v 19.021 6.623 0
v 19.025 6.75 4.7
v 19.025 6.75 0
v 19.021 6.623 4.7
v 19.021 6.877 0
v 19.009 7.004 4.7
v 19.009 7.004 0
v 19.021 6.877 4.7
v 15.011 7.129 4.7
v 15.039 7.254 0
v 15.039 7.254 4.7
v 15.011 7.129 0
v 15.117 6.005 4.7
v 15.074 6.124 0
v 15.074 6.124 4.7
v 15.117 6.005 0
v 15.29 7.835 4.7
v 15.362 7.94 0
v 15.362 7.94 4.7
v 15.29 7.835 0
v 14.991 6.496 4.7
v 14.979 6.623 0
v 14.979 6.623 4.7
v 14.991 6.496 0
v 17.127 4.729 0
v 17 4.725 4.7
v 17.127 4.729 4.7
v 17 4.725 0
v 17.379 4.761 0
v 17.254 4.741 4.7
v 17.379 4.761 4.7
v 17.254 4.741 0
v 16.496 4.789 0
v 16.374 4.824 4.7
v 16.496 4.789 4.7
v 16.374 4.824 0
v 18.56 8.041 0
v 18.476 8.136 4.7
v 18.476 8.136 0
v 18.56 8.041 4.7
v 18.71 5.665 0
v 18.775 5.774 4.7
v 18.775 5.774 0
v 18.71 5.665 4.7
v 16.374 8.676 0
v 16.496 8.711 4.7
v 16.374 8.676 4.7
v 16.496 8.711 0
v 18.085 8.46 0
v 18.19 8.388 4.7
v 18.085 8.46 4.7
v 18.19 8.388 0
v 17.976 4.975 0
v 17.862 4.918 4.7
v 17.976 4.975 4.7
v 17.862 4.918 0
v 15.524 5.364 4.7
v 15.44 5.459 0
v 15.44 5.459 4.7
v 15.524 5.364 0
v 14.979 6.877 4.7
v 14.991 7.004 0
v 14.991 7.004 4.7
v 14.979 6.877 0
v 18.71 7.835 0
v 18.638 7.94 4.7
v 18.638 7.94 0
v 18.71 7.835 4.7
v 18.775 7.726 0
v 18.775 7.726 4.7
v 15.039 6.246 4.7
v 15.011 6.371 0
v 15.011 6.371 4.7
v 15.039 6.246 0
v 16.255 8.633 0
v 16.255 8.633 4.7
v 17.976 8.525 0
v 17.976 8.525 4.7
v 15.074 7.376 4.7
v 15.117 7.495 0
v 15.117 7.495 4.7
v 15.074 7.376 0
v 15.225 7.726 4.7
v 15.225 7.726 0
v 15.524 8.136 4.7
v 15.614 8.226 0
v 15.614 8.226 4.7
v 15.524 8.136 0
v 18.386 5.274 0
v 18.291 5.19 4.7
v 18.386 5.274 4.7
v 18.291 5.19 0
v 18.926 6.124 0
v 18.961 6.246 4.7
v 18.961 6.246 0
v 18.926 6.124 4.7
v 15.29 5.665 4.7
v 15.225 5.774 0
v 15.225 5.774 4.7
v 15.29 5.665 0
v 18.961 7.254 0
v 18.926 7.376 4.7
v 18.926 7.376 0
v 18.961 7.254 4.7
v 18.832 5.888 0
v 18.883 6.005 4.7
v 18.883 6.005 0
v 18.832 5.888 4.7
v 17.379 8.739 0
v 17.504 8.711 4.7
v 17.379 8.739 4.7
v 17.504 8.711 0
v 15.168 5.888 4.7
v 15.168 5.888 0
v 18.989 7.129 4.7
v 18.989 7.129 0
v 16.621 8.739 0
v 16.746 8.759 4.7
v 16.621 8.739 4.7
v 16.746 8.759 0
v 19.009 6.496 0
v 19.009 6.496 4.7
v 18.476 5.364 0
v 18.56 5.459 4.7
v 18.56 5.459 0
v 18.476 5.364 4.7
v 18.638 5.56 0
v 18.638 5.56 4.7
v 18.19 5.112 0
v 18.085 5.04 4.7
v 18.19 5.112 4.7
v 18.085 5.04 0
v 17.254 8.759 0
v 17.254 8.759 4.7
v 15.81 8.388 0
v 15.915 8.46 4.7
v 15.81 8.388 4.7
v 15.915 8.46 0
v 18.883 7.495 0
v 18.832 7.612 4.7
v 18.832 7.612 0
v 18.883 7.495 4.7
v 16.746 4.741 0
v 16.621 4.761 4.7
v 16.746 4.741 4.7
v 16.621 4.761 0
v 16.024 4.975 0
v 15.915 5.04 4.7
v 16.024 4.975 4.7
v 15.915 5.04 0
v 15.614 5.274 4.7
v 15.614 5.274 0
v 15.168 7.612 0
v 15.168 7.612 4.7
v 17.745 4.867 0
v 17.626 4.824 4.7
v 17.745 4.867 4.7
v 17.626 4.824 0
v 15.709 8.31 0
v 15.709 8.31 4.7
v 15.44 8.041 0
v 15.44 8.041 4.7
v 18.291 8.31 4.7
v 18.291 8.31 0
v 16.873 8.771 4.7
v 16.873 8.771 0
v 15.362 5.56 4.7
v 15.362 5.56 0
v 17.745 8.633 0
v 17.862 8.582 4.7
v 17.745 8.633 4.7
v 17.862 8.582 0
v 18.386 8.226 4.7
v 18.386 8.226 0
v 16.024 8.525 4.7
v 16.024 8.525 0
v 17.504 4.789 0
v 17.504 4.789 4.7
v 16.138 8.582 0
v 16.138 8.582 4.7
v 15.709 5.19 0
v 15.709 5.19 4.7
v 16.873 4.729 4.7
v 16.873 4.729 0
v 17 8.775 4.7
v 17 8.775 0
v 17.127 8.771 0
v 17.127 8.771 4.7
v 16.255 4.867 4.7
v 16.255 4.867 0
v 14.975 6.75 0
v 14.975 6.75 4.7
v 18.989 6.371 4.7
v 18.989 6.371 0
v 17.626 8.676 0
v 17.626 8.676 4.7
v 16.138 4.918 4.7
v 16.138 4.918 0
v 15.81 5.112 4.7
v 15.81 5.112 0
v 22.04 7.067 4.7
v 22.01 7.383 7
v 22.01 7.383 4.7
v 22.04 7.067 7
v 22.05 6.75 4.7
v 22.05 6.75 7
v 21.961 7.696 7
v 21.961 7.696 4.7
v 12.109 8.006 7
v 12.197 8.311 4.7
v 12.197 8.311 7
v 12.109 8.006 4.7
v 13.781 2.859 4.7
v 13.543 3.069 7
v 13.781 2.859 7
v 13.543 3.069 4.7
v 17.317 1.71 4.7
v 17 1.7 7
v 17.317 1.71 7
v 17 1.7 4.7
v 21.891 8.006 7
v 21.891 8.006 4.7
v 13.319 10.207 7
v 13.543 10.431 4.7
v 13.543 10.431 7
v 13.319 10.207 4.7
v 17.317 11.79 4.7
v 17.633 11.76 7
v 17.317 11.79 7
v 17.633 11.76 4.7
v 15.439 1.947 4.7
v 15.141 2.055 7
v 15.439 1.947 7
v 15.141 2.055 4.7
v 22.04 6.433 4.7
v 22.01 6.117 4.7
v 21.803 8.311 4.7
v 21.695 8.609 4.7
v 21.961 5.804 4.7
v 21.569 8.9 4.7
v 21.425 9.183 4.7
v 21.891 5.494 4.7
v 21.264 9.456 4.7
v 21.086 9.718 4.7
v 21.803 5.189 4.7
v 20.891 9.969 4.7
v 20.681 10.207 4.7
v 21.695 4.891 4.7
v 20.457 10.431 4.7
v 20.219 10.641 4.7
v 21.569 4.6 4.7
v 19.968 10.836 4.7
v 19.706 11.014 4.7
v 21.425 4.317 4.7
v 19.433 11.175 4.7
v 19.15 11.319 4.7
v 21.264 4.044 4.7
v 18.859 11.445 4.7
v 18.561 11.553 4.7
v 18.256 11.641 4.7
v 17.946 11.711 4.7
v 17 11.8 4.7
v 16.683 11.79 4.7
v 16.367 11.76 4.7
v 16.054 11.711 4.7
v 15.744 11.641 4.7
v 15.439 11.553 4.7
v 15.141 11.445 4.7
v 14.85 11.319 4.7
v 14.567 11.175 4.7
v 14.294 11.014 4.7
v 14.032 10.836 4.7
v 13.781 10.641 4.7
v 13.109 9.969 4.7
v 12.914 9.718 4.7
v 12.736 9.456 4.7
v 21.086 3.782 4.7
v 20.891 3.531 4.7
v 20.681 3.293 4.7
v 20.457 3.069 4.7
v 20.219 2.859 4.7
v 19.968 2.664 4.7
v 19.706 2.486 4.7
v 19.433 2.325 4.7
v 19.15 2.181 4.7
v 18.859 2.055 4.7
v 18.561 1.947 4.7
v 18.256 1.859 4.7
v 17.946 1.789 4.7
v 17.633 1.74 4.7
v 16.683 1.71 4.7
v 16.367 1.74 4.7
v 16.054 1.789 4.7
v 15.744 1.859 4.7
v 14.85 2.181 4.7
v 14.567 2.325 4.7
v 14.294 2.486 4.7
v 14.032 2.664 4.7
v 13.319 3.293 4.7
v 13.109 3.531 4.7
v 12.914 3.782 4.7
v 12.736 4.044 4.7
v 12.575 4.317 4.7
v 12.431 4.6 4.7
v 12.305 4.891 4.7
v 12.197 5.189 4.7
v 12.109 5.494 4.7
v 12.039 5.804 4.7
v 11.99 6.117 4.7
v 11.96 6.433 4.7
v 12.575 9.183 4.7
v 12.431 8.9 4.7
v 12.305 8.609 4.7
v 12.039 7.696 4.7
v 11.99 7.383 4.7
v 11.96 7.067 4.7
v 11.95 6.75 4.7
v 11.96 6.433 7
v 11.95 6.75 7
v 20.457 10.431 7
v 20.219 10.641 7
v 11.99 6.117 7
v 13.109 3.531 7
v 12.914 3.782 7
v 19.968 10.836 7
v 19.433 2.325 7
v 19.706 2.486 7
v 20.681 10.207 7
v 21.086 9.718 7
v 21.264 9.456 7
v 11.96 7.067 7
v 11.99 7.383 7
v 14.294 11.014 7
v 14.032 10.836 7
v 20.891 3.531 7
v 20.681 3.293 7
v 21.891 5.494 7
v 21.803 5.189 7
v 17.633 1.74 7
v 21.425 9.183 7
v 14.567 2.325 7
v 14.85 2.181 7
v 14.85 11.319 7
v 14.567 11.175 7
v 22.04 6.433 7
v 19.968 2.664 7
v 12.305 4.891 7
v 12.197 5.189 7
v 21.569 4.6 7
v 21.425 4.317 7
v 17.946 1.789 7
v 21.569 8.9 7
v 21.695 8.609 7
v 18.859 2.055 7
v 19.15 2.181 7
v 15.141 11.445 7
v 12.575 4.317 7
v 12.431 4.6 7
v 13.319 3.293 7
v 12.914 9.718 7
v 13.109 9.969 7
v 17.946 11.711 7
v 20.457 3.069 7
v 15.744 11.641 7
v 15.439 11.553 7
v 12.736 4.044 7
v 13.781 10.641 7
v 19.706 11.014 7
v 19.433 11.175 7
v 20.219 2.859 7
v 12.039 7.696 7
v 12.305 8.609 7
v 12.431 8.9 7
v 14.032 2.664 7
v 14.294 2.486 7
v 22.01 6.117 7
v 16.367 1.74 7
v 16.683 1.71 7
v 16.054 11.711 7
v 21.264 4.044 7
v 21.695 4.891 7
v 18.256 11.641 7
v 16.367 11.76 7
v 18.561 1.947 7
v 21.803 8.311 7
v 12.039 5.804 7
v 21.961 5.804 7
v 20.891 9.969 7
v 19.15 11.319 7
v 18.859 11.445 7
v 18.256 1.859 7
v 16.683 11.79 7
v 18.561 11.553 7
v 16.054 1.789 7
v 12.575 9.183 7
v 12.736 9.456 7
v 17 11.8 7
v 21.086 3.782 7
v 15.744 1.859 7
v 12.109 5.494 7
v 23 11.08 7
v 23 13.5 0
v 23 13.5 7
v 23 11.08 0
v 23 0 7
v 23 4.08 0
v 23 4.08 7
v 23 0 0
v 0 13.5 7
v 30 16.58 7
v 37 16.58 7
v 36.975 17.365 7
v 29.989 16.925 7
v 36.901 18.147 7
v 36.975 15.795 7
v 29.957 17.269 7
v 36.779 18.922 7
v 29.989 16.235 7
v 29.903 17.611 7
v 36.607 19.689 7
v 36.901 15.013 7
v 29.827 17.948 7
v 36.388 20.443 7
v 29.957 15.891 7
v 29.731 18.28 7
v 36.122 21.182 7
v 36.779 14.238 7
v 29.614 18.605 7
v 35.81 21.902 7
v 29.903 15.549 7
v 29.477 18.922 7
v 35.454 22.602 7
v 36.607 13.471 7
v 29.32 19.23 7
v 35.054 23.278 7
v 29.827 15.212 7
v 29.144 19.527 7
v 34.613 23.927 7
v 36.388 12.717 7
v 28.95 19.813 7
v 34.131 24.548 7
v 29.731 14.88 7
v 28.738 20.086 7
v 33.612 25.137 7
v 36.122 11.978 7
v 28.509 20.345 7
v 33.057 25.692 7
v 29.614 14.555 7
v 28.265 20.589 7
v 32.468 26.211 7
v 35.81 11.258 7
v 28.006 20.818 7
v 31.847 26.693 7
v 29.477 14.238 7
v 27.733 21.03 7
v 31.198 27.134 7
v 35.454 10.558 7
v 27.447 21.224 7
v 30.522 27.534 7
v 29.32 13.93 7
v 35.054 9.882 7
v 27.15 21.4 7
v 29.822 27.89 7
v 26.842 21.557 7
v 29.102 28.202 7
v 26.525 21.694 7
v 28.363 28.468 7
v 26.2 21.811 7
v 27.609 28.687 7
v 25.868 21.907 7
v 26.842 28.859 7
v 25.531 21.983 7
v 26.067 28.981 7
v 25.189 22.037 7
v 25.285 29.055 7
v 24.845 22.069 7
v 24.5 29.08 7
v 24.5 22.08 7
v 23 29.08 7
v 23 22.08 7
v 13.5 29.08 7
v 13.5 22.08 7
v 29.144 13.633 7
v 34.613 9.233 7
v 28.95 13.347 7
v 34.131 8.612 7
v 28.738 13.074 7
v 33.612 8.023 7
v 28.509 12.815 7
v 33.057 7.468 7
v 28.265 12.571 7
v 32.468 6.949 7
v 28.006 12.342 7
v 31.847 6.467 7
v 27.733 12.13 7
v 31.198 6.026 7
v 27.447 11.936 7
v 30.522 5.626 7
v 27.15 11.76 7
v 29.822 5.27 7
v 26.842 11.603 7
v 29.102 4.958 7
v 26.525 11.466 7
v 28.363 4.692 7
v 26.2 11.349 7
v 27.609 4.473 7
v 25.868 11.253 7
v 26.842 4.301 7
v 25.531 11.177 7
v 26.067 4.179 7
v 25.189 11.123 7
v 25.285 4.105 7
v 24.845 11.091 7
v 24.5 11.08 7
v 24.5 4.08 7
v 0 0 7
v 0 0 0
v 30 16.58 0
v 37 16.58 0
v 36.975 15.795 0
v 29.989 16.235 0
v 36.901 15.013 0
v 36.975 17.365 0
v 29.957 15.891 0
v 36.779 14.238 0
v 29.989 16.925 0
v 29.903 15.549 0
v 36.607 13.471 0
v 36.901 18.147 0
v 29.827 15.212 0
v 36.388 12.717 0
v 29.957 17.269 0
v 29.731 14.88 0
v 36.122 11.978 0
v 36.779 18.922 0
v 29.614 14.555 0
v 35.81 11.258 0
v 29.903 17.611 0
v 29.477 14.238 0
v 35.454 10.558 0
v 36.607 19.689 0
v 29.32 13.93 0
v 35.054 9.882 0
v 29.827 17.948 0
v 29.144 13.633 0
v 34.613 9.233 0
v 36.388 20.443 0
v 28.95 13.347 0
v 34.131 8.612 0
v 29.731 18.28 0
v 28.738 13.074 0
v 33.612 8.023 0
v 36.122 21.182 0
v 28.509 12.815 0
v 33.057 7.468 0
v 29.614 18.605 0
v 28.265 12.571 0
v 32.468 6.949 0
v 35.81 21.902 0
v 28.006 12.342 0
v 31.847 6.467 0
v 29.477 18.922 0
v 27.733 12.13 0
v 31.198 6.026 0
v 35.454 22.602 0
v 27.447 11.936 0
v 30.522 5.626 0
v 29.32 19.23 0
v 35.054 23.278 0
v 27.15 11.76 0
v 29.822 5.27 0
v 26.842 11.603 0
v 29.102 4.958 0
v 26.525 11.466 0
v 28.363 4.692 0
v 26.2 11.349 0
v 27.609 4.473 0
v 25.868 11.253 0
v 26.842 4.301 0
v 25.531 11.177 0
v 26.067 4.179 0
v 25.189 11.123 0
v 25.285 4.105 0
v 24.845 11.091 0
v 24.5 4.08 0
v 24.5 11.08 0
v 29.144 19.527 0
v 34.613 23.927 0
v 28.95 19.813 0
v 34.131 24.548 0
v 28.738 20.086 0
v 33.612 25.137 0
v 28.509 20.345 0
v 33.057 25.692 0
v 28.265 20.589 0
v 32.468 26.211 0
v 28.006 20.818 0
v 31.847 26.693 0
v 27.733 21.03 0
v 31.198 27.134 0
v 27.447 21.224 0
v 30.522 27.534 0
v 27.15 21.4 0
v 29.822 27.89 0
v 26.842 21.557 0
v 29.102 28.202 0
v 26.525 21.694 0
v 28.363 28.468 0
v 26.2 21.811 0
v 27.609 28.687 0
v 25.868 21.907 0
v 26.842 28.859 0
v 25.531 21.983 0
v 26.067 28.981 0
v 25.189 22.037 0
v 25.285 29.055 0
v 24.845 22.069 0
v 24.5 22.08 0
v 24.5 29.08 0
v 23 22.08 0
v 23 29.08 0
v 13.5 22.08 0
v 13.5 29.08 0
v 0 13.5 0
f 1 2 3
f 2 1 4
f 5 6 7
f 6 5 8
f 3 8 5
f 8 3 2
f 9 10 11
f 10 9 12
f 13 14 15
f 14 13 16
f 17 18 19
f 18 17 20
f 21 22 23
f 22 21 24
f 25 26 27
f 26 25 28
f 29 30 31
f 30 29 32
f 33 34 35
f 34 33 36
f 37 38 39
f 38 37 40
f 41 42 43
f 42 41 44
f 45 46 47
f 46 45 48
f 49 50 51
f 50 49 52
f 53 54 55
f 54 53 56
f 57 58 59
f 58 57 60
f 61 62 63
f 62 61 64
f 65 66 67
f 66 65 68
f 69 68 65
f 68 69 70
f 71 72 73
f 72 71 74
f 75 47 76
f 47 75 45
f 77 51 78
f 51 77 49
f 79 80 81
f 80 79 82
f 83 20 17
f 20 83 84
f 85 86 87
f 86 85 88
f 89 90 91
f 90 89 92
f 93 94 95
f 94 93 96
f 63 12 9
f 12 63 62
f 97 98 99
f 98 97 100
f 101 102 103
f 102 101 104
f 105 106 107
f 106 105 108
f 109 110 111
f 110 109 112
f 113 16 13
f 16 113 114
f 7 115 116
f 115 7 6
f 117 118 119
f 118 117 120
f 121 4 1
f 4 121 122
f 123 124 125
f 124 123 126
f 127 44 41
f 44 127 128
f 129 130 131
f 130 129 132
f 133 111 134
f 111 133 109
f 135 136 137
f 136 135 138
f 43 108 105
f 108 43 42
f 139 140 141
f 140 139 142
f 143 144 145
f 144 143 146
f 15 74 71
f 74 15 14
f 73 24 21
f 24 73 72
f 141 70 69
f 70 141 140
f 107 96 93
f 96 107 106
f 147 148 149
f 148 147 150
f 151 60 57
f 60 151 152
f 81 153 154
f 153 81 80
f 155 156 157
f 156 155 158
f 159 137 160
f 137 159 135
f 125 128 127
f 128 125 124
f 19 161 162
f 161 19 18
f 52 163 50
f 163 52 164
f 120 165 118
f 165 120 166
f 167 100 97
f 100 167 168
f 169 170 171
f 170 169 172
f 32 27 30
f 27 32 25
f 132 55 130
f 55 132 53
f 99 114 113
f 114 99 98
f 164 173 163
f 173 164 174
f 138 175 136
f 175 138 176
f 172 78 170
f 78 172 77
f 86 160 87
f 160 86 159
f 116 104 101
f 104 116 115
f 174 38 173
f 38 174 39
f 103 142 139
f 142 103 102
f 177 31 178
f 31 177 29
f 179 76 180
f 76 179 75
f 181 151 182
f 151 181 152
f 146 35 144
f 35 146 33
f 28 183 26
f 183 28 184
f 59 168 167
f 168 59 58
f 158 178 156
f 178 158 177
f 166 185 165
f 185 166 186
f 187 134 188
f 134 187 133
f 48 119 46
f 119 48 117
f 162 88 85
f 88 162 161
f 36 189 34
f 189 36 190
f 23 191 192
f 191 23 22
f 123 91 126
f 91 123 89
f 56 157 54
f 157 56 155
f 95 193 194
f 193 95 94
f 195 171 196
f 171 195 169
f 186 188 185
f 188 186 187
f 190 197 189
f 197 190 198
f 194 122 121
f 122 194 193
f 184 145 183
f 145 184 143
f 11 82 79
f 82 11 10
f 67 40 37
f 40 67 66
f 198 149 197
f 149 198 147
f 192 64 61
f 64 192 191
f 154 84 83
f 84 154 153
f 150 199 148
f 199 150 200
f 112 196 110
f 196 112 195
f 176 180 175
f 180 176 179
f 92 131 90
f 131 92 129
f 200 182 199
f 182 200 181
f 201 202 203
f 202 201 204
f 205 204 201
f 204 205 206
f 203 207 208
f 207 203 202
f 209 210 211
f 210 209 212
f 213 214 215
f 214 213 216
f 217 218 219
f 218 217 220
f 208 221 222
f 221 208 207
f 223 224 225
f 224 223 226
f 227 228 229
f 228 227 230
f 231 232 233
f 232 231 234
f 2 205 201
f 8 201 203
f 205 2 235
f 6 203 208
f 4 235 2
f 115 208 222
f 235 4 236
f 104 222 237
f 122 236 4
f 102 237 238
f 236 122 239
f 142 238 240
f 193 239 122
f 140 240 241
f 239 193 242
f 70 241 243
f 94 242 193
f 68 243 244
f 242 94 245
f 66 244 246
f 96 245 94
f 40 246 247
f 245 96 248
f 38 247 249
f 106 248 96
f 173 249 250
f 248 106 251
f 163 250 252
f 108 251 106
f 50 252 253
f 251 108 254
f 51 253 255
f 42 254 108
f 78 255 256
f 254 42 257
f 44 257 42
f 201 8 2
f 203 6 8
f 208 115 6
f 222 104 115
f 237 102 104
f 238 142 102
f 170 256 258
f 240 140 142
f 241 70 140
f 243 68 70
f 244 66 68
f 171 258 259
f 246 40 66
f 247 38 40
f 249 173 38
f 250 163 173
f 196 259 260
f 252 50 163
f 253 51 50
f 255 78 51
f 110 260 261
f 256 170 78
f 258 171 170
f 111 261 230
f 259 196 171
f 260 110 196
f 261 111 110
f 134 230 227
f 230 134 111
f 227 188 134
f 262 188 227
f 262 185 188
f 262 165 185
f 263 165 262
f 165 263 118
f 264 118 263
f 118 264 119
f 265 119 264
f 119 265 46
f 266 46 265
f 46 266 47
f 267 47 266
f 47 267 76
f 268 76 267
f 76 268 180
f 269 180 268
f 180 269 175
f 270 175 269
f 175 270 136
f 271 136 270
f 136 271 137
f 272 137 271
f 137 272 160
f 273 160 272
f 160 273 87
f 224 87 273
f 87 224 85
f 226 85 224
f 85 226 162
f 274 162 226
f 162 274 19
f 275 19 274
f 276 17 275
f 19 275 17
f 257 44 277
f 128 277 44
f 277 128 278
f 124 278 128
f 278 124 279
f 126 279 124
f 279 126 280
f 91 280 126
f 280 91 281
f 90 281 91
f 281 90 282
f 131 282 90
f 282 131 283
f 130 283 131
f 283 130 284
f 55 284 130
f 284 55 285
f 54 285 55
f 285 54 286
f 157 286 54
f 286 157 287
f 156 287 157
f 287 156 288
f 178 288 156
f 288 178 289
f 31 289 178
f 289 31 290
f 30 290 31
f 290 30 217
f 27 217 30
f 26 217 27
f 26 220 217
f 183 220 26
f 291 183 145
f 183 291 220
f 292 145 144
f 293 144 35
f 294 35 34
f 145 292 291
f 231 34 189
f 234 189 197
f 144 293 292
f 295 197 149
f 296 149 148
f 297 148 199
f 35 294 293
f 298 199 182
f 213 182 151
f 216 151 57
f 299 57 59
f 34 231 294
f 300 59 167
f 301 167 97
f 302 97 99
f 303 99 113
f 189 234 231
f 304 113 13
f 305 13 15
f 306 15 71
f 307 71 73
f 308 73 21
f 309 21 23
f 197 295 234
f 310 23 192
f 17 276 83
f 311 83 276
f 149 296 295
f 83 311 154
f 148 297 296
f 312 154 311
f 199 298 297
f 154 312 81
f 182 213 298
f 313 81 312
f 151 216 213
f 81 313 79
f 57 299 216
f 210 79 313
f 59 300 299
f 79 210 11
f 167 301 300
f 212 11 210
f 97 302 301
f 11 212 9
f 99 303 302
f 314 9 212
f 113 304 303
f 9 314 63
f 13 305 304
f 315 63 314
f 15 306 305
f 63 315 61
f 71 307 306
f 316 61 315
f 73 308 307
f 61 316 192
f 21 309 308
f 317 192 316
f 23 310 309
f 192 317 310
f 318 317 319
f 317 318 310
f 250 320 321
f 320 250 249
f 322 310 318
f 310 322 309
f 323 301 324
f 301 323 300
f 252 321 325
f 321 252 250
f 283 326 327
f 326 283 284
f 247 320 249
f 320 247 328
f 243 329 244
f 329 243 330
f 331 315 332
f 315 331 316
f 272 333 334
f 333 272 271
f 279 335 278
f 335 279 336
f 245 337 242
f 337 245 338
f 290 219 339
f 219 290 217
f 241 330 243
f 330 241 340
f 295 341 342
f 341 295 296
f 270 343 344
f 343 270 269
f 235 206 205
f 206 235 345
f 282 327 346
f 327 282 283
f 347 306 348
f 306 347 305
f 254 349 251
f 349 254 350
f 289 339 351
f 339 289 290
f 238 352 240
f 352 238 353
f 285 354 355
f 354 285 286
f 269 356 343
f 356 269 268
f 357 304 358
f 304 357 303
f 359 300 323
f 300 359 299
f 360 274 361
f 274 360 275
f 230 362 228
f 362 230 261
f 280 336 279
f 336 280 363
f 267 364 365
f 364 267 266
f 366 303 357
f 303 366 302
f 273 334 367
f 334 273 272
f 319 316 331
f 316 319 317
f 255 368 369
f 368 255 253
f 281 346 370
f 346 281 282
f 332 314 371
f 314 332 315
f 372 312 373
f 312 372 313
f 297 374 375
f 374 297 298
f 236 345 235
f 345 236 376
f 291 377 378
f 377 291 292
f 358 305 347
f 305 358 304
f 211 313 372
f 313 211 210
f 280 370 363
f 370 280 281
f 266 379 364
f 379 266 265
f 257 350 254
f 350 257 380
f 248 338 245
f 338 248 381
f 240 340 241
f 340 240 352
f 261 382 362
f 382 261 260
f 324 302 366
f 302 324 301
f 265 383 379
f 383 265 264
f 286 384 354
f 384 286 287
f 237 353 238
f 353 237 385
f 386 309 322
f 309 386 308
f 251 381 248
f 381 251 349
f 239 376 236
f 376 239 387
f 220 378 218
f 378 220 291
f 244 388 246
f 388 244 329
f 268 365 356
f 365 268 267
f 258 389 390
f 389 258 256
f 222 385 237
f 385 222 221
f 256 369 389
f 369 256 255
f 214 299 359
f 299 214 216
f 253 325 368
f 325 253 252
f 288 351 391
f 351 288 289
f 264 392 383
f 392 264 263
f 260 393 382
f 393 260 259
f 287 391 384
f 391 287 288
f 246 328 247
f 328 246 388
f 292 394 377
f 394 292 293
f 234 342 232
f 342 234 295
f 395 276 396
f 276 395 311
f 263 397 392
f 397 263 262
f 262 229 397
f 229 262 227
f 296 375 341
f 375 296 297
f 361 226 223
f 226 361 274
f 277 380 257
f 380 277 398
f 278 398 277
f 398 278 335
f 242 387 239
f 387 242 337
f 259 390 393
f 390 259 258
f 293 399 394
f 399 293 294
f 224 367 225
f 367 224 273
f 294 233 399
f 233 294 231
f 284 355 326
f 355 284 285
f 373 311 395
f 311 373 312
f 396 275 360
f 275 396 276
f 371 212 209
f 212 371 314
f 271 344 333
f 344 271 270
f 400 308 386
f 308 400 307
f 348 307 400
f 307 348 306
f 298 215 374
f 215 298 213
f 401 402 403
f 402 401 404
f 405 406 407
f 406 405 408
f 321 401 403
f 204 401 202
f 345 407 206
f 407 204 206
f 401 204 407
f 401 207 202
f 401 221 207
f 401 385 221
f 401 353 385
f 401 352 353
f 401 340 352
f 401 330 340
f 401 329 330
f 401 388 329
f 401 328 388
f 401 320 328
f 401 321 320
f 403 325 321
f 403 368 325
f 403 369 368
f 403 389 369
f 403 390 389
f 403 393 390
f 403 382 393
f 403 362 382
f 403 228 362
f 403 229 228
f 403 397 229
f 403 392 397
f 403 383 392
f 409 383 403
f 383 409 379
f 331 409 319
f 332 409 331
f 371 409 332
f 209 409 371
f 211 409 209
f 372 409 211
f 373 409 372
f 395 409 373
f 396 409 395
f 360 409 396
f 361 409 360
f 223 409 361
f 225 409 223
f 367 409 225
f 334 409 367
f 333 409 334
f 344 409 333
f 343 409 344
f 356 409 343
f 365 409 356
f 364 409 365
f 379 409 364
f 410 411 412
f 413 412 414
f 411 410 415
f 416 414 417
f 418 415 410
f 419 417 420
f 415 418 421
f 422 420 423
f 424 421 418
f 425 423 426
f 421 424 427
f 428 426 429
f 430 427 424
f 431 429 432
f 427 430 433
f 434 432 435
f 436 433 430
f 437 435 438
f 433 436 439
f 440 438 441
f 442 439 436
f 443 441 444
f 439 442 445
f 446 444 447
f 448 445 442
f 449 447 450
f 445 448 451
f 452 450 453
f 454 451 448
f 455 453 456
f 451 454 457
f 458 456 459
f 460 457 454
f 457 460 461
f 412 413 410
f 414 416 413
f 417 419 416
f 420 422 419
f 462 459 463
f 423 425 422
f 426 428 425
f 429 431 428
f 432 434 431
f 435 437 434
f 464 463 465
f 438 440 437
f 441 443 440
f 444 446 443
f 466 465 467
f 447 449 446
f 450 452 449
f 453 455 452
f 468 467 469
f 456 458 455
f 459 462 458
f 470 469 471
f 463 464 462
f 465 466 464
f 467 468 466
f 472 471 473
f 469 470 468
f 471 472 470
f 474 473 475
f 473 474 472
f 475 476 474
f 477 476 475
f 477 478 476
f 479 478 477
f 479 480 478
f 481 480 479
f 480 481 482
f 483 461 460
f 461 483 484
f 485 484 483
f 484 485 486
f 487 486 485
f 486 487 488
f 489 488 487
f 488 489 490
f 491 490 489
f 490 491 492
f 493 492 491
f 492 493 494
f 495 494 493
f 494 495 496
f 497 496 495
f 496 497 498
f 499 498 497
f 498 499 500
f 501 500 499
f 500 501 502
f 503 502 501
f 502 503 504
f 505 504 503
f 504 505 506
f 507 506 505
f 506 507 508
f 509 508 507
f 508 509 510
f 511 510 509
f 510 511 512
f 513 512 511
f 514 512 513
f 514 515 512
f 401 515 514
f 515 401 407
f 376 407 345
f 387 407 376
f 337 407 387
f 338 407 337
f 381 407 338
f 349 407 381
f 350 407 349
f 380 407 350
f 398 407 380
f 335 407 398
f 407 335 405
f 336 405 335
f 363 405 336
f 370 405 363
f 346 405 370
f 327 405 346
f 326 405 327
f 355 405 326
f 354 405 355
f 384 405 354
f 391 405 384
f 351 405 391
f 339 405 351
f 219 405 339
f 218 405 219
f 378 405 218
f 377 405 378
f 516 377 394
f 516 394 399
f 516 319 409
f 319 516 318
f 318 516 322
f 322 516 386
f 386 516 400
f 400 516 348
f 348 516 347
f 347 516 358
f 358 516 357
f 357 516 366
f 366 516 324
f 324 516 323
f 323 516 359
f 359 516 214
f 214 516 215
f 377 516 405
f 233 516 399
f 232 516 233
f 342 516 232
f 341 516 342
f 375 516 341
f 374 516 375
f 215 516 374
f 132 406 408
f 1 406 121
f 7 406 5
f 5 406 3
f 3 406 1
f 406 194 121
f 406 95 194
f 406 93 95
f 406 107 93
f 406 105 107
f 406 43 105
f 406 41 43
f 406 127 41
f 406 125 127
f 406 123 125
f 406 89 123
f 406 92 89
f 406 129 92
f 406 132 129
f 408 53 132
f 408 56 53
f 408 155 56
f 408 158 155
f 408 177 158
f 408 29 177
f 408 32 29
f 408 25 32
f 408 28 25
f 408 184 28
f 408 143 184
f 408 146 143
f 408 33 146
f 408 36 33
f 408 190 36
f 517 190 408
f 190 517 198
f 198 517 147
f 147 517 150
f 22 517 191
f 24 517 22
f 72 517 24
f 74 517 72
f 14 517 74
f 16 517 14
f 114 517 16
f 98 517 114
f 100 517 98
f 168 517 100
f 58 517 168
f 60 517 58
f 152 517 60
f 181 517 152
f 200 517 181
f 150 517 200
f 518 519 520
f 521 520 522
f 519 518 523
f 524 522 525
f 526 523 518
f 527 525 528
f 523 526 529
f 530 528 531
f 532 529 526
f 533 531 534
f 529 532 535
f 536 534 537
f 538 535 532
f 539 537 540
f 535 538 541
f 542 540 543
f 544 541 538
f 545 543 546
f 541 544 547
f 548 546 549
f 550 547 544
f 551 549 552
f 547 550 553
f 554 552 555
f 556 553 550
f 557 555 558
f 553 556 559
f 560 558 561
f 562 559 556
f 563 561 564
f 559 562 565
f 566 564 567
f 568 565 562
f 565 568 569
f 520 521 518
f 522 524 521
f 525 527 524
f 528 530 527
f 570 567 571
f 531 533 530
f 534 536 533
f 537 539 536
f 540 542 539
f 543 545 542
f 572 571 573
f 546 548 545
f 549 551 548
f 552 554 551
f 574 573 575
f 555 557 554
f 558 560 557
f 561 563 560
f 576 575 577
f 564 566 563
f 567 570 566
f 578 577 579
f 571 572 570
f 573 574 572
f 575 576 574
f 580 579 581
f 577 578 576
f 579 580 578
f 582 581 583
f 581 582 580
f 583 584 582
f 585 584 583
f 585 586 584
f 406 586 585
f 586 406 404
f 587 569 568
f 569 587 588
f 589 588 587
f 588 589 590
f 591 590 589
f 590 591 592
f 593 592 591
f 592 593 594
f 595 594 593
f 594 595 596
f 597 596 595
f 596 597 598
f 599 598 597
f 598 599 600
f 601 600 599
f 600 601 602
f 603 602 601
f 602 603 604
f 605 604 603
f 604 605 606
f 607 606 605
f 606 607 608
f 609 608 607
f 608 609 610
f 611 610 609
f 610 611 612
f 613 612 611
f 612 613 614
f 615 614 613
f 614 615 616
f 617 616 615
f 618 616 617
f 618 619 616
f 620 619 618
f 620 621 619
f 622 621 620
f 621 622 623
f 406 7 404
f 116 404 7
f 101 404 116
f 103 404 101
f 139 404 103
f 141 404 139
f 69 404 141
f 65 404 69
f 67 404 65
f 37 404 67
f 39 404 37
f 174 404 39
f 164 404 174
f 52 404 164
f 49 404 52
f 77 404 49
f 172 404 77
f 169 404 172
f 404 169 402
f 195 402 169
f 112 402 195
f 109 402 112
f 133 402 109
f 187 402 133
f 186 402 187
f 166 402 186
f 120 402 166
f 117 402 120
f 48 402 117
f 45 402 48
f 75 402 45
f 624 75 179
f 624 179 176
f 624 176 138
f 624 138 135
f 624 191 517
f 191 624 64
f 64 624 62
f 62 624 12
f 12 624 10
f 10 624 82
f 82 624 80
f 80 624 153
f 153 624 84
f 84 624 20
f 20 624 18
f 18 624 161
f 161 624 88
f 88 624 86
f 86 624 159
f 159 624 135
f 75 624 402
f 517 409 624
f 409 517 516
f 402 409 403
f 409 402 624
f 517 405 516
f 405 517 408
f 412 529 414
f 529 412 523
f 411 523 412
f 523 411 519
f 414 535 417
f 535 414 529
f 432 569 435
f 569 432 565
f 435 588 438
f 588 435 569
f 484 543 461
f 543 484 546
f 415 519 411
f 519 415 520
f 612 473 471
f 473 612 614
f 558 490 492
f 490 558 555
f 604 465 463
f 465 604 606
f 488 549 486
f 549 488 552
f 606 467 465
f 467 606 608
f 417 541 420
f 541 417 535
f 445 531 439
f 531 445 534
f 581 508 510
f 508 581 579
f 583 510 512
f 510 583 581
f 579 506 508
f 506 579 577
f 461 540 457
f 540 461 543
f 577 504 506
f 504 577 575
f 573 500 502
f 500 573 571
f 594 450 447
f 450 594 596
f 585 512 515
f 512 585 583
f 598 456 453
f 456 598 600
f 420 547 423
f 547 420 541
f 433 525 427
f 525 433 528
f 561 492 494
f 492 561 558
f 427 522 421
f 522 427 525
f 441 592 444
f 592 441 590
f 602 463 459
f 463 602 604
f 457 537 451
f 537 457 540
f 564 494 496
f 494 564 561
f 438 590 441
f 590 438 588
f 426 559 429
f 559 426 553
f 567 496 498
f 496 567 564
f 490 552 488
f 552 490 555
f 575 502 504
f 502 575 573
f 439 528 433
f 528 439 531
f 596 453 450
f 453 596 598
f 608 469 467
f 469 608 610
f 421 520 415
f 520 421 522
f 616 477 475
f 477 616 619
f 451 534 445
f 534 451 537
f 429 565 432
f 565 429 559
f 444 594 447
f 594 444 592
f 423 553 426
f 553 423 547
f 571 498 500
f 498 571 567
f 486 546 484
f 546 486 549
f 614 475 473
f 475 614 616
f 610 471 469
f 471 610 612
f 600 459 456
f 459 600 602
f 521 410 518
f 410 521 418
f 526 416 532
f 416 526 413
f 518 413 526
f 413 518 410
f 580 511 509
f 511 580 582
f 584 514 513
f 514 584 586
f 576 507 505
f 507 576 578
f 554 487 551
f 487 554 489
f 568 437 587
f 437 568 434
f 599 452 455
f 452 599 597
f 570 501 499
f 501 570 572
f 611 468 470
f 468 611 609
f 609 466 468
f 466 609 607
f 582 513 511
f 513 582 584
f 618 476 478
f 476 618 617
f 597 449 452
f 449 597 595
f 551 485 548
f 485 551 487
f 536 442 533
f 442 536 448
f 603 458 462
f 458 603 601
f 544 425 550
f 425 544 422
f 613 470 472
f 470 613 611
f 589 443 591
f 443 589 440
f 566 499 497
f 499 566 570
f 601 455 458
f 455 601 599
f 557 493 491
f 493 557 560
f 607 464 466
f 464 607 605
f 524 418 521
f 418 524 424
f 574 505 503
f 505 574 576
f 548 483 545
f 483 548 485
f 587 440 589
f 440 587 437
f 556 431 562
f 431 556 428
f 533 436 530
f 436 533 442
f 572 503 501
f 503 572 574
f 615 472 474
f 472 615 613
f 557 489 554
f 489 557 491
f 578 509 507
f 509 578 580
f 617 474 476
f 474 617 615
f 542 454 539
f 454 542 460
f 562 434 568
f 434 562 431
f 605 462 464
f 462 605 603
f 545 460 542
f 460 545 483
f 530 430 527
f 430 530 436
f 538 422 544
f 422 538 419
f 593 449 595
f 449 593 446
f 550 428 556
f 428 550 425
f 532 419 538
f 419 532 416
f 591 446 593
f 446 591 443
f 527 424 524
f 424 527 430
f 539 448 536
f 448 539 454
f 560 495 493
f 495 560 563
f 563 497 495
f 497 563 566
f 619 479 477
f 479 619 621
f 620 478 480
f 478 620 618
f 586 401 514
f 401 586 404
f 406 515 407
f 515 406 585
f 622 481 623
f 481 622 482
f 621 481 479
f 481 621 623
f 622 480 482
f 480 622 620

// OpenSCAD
screw_od = 4.05;
screw_head = 9.10 + 1;
screw_pos = 17;

base_width = 13.04;
base_width = 13.5;
base_length = 23;
base_height = 7.00;
hole_height = 4.70;

arm_extension = 1.5;
head_width = 8.13;
arm_od = 25;
arm_id = 11;
arm_width = (arm_od-arm_id)/2;


hole_to_surface = 15.33;
hole_to_end = 3.5; 

$fn = 100;


module arm() {
    translate([arm_extension, 0, 0])
    difference() {
        cylinder(h=base_height, d=arm_od);
        translate([0, 0,  -1])
        cylinder(h=base_height+2, d=arm_id);
        
        translate([-arm_od, -arm_od/2, -arm_od/2])
        cube([arm_od, arm_od, arm_od]);
    }
    
    translate([0, arm_id/2])
    cube([arm_extension, arm_width, base_height]); 
    translate([0, -arm_od/2])
    cube([arm_extension, arm_width, base_height]);       
    
}
module screw_hole() {
    translate([0, 0, -1])
    cylinder(h=base_height, d=screw_od);
    translate([0, 0, hole_height])
    cylinder(h=base_height, d=screw_head);

}

difference() {
    cube([
       base_length,
       base_width,
       base_height,
    ]);
    
    translate([
      screw_pos,
      base_width/2,
    ])
    screw_hole();
}

head_x = screw_pos-hole_to_end;
head_length = base_length-head_x;
head_y = hole_to_surface+base_width/2;
translate([
  head_x,
  head_y,
  0,
])
#cube([
  head_length,
  arm_width, 
  base_height,
]);

translate([
  base_length,
  head_y-arm_id/2,
  0])
arm();
